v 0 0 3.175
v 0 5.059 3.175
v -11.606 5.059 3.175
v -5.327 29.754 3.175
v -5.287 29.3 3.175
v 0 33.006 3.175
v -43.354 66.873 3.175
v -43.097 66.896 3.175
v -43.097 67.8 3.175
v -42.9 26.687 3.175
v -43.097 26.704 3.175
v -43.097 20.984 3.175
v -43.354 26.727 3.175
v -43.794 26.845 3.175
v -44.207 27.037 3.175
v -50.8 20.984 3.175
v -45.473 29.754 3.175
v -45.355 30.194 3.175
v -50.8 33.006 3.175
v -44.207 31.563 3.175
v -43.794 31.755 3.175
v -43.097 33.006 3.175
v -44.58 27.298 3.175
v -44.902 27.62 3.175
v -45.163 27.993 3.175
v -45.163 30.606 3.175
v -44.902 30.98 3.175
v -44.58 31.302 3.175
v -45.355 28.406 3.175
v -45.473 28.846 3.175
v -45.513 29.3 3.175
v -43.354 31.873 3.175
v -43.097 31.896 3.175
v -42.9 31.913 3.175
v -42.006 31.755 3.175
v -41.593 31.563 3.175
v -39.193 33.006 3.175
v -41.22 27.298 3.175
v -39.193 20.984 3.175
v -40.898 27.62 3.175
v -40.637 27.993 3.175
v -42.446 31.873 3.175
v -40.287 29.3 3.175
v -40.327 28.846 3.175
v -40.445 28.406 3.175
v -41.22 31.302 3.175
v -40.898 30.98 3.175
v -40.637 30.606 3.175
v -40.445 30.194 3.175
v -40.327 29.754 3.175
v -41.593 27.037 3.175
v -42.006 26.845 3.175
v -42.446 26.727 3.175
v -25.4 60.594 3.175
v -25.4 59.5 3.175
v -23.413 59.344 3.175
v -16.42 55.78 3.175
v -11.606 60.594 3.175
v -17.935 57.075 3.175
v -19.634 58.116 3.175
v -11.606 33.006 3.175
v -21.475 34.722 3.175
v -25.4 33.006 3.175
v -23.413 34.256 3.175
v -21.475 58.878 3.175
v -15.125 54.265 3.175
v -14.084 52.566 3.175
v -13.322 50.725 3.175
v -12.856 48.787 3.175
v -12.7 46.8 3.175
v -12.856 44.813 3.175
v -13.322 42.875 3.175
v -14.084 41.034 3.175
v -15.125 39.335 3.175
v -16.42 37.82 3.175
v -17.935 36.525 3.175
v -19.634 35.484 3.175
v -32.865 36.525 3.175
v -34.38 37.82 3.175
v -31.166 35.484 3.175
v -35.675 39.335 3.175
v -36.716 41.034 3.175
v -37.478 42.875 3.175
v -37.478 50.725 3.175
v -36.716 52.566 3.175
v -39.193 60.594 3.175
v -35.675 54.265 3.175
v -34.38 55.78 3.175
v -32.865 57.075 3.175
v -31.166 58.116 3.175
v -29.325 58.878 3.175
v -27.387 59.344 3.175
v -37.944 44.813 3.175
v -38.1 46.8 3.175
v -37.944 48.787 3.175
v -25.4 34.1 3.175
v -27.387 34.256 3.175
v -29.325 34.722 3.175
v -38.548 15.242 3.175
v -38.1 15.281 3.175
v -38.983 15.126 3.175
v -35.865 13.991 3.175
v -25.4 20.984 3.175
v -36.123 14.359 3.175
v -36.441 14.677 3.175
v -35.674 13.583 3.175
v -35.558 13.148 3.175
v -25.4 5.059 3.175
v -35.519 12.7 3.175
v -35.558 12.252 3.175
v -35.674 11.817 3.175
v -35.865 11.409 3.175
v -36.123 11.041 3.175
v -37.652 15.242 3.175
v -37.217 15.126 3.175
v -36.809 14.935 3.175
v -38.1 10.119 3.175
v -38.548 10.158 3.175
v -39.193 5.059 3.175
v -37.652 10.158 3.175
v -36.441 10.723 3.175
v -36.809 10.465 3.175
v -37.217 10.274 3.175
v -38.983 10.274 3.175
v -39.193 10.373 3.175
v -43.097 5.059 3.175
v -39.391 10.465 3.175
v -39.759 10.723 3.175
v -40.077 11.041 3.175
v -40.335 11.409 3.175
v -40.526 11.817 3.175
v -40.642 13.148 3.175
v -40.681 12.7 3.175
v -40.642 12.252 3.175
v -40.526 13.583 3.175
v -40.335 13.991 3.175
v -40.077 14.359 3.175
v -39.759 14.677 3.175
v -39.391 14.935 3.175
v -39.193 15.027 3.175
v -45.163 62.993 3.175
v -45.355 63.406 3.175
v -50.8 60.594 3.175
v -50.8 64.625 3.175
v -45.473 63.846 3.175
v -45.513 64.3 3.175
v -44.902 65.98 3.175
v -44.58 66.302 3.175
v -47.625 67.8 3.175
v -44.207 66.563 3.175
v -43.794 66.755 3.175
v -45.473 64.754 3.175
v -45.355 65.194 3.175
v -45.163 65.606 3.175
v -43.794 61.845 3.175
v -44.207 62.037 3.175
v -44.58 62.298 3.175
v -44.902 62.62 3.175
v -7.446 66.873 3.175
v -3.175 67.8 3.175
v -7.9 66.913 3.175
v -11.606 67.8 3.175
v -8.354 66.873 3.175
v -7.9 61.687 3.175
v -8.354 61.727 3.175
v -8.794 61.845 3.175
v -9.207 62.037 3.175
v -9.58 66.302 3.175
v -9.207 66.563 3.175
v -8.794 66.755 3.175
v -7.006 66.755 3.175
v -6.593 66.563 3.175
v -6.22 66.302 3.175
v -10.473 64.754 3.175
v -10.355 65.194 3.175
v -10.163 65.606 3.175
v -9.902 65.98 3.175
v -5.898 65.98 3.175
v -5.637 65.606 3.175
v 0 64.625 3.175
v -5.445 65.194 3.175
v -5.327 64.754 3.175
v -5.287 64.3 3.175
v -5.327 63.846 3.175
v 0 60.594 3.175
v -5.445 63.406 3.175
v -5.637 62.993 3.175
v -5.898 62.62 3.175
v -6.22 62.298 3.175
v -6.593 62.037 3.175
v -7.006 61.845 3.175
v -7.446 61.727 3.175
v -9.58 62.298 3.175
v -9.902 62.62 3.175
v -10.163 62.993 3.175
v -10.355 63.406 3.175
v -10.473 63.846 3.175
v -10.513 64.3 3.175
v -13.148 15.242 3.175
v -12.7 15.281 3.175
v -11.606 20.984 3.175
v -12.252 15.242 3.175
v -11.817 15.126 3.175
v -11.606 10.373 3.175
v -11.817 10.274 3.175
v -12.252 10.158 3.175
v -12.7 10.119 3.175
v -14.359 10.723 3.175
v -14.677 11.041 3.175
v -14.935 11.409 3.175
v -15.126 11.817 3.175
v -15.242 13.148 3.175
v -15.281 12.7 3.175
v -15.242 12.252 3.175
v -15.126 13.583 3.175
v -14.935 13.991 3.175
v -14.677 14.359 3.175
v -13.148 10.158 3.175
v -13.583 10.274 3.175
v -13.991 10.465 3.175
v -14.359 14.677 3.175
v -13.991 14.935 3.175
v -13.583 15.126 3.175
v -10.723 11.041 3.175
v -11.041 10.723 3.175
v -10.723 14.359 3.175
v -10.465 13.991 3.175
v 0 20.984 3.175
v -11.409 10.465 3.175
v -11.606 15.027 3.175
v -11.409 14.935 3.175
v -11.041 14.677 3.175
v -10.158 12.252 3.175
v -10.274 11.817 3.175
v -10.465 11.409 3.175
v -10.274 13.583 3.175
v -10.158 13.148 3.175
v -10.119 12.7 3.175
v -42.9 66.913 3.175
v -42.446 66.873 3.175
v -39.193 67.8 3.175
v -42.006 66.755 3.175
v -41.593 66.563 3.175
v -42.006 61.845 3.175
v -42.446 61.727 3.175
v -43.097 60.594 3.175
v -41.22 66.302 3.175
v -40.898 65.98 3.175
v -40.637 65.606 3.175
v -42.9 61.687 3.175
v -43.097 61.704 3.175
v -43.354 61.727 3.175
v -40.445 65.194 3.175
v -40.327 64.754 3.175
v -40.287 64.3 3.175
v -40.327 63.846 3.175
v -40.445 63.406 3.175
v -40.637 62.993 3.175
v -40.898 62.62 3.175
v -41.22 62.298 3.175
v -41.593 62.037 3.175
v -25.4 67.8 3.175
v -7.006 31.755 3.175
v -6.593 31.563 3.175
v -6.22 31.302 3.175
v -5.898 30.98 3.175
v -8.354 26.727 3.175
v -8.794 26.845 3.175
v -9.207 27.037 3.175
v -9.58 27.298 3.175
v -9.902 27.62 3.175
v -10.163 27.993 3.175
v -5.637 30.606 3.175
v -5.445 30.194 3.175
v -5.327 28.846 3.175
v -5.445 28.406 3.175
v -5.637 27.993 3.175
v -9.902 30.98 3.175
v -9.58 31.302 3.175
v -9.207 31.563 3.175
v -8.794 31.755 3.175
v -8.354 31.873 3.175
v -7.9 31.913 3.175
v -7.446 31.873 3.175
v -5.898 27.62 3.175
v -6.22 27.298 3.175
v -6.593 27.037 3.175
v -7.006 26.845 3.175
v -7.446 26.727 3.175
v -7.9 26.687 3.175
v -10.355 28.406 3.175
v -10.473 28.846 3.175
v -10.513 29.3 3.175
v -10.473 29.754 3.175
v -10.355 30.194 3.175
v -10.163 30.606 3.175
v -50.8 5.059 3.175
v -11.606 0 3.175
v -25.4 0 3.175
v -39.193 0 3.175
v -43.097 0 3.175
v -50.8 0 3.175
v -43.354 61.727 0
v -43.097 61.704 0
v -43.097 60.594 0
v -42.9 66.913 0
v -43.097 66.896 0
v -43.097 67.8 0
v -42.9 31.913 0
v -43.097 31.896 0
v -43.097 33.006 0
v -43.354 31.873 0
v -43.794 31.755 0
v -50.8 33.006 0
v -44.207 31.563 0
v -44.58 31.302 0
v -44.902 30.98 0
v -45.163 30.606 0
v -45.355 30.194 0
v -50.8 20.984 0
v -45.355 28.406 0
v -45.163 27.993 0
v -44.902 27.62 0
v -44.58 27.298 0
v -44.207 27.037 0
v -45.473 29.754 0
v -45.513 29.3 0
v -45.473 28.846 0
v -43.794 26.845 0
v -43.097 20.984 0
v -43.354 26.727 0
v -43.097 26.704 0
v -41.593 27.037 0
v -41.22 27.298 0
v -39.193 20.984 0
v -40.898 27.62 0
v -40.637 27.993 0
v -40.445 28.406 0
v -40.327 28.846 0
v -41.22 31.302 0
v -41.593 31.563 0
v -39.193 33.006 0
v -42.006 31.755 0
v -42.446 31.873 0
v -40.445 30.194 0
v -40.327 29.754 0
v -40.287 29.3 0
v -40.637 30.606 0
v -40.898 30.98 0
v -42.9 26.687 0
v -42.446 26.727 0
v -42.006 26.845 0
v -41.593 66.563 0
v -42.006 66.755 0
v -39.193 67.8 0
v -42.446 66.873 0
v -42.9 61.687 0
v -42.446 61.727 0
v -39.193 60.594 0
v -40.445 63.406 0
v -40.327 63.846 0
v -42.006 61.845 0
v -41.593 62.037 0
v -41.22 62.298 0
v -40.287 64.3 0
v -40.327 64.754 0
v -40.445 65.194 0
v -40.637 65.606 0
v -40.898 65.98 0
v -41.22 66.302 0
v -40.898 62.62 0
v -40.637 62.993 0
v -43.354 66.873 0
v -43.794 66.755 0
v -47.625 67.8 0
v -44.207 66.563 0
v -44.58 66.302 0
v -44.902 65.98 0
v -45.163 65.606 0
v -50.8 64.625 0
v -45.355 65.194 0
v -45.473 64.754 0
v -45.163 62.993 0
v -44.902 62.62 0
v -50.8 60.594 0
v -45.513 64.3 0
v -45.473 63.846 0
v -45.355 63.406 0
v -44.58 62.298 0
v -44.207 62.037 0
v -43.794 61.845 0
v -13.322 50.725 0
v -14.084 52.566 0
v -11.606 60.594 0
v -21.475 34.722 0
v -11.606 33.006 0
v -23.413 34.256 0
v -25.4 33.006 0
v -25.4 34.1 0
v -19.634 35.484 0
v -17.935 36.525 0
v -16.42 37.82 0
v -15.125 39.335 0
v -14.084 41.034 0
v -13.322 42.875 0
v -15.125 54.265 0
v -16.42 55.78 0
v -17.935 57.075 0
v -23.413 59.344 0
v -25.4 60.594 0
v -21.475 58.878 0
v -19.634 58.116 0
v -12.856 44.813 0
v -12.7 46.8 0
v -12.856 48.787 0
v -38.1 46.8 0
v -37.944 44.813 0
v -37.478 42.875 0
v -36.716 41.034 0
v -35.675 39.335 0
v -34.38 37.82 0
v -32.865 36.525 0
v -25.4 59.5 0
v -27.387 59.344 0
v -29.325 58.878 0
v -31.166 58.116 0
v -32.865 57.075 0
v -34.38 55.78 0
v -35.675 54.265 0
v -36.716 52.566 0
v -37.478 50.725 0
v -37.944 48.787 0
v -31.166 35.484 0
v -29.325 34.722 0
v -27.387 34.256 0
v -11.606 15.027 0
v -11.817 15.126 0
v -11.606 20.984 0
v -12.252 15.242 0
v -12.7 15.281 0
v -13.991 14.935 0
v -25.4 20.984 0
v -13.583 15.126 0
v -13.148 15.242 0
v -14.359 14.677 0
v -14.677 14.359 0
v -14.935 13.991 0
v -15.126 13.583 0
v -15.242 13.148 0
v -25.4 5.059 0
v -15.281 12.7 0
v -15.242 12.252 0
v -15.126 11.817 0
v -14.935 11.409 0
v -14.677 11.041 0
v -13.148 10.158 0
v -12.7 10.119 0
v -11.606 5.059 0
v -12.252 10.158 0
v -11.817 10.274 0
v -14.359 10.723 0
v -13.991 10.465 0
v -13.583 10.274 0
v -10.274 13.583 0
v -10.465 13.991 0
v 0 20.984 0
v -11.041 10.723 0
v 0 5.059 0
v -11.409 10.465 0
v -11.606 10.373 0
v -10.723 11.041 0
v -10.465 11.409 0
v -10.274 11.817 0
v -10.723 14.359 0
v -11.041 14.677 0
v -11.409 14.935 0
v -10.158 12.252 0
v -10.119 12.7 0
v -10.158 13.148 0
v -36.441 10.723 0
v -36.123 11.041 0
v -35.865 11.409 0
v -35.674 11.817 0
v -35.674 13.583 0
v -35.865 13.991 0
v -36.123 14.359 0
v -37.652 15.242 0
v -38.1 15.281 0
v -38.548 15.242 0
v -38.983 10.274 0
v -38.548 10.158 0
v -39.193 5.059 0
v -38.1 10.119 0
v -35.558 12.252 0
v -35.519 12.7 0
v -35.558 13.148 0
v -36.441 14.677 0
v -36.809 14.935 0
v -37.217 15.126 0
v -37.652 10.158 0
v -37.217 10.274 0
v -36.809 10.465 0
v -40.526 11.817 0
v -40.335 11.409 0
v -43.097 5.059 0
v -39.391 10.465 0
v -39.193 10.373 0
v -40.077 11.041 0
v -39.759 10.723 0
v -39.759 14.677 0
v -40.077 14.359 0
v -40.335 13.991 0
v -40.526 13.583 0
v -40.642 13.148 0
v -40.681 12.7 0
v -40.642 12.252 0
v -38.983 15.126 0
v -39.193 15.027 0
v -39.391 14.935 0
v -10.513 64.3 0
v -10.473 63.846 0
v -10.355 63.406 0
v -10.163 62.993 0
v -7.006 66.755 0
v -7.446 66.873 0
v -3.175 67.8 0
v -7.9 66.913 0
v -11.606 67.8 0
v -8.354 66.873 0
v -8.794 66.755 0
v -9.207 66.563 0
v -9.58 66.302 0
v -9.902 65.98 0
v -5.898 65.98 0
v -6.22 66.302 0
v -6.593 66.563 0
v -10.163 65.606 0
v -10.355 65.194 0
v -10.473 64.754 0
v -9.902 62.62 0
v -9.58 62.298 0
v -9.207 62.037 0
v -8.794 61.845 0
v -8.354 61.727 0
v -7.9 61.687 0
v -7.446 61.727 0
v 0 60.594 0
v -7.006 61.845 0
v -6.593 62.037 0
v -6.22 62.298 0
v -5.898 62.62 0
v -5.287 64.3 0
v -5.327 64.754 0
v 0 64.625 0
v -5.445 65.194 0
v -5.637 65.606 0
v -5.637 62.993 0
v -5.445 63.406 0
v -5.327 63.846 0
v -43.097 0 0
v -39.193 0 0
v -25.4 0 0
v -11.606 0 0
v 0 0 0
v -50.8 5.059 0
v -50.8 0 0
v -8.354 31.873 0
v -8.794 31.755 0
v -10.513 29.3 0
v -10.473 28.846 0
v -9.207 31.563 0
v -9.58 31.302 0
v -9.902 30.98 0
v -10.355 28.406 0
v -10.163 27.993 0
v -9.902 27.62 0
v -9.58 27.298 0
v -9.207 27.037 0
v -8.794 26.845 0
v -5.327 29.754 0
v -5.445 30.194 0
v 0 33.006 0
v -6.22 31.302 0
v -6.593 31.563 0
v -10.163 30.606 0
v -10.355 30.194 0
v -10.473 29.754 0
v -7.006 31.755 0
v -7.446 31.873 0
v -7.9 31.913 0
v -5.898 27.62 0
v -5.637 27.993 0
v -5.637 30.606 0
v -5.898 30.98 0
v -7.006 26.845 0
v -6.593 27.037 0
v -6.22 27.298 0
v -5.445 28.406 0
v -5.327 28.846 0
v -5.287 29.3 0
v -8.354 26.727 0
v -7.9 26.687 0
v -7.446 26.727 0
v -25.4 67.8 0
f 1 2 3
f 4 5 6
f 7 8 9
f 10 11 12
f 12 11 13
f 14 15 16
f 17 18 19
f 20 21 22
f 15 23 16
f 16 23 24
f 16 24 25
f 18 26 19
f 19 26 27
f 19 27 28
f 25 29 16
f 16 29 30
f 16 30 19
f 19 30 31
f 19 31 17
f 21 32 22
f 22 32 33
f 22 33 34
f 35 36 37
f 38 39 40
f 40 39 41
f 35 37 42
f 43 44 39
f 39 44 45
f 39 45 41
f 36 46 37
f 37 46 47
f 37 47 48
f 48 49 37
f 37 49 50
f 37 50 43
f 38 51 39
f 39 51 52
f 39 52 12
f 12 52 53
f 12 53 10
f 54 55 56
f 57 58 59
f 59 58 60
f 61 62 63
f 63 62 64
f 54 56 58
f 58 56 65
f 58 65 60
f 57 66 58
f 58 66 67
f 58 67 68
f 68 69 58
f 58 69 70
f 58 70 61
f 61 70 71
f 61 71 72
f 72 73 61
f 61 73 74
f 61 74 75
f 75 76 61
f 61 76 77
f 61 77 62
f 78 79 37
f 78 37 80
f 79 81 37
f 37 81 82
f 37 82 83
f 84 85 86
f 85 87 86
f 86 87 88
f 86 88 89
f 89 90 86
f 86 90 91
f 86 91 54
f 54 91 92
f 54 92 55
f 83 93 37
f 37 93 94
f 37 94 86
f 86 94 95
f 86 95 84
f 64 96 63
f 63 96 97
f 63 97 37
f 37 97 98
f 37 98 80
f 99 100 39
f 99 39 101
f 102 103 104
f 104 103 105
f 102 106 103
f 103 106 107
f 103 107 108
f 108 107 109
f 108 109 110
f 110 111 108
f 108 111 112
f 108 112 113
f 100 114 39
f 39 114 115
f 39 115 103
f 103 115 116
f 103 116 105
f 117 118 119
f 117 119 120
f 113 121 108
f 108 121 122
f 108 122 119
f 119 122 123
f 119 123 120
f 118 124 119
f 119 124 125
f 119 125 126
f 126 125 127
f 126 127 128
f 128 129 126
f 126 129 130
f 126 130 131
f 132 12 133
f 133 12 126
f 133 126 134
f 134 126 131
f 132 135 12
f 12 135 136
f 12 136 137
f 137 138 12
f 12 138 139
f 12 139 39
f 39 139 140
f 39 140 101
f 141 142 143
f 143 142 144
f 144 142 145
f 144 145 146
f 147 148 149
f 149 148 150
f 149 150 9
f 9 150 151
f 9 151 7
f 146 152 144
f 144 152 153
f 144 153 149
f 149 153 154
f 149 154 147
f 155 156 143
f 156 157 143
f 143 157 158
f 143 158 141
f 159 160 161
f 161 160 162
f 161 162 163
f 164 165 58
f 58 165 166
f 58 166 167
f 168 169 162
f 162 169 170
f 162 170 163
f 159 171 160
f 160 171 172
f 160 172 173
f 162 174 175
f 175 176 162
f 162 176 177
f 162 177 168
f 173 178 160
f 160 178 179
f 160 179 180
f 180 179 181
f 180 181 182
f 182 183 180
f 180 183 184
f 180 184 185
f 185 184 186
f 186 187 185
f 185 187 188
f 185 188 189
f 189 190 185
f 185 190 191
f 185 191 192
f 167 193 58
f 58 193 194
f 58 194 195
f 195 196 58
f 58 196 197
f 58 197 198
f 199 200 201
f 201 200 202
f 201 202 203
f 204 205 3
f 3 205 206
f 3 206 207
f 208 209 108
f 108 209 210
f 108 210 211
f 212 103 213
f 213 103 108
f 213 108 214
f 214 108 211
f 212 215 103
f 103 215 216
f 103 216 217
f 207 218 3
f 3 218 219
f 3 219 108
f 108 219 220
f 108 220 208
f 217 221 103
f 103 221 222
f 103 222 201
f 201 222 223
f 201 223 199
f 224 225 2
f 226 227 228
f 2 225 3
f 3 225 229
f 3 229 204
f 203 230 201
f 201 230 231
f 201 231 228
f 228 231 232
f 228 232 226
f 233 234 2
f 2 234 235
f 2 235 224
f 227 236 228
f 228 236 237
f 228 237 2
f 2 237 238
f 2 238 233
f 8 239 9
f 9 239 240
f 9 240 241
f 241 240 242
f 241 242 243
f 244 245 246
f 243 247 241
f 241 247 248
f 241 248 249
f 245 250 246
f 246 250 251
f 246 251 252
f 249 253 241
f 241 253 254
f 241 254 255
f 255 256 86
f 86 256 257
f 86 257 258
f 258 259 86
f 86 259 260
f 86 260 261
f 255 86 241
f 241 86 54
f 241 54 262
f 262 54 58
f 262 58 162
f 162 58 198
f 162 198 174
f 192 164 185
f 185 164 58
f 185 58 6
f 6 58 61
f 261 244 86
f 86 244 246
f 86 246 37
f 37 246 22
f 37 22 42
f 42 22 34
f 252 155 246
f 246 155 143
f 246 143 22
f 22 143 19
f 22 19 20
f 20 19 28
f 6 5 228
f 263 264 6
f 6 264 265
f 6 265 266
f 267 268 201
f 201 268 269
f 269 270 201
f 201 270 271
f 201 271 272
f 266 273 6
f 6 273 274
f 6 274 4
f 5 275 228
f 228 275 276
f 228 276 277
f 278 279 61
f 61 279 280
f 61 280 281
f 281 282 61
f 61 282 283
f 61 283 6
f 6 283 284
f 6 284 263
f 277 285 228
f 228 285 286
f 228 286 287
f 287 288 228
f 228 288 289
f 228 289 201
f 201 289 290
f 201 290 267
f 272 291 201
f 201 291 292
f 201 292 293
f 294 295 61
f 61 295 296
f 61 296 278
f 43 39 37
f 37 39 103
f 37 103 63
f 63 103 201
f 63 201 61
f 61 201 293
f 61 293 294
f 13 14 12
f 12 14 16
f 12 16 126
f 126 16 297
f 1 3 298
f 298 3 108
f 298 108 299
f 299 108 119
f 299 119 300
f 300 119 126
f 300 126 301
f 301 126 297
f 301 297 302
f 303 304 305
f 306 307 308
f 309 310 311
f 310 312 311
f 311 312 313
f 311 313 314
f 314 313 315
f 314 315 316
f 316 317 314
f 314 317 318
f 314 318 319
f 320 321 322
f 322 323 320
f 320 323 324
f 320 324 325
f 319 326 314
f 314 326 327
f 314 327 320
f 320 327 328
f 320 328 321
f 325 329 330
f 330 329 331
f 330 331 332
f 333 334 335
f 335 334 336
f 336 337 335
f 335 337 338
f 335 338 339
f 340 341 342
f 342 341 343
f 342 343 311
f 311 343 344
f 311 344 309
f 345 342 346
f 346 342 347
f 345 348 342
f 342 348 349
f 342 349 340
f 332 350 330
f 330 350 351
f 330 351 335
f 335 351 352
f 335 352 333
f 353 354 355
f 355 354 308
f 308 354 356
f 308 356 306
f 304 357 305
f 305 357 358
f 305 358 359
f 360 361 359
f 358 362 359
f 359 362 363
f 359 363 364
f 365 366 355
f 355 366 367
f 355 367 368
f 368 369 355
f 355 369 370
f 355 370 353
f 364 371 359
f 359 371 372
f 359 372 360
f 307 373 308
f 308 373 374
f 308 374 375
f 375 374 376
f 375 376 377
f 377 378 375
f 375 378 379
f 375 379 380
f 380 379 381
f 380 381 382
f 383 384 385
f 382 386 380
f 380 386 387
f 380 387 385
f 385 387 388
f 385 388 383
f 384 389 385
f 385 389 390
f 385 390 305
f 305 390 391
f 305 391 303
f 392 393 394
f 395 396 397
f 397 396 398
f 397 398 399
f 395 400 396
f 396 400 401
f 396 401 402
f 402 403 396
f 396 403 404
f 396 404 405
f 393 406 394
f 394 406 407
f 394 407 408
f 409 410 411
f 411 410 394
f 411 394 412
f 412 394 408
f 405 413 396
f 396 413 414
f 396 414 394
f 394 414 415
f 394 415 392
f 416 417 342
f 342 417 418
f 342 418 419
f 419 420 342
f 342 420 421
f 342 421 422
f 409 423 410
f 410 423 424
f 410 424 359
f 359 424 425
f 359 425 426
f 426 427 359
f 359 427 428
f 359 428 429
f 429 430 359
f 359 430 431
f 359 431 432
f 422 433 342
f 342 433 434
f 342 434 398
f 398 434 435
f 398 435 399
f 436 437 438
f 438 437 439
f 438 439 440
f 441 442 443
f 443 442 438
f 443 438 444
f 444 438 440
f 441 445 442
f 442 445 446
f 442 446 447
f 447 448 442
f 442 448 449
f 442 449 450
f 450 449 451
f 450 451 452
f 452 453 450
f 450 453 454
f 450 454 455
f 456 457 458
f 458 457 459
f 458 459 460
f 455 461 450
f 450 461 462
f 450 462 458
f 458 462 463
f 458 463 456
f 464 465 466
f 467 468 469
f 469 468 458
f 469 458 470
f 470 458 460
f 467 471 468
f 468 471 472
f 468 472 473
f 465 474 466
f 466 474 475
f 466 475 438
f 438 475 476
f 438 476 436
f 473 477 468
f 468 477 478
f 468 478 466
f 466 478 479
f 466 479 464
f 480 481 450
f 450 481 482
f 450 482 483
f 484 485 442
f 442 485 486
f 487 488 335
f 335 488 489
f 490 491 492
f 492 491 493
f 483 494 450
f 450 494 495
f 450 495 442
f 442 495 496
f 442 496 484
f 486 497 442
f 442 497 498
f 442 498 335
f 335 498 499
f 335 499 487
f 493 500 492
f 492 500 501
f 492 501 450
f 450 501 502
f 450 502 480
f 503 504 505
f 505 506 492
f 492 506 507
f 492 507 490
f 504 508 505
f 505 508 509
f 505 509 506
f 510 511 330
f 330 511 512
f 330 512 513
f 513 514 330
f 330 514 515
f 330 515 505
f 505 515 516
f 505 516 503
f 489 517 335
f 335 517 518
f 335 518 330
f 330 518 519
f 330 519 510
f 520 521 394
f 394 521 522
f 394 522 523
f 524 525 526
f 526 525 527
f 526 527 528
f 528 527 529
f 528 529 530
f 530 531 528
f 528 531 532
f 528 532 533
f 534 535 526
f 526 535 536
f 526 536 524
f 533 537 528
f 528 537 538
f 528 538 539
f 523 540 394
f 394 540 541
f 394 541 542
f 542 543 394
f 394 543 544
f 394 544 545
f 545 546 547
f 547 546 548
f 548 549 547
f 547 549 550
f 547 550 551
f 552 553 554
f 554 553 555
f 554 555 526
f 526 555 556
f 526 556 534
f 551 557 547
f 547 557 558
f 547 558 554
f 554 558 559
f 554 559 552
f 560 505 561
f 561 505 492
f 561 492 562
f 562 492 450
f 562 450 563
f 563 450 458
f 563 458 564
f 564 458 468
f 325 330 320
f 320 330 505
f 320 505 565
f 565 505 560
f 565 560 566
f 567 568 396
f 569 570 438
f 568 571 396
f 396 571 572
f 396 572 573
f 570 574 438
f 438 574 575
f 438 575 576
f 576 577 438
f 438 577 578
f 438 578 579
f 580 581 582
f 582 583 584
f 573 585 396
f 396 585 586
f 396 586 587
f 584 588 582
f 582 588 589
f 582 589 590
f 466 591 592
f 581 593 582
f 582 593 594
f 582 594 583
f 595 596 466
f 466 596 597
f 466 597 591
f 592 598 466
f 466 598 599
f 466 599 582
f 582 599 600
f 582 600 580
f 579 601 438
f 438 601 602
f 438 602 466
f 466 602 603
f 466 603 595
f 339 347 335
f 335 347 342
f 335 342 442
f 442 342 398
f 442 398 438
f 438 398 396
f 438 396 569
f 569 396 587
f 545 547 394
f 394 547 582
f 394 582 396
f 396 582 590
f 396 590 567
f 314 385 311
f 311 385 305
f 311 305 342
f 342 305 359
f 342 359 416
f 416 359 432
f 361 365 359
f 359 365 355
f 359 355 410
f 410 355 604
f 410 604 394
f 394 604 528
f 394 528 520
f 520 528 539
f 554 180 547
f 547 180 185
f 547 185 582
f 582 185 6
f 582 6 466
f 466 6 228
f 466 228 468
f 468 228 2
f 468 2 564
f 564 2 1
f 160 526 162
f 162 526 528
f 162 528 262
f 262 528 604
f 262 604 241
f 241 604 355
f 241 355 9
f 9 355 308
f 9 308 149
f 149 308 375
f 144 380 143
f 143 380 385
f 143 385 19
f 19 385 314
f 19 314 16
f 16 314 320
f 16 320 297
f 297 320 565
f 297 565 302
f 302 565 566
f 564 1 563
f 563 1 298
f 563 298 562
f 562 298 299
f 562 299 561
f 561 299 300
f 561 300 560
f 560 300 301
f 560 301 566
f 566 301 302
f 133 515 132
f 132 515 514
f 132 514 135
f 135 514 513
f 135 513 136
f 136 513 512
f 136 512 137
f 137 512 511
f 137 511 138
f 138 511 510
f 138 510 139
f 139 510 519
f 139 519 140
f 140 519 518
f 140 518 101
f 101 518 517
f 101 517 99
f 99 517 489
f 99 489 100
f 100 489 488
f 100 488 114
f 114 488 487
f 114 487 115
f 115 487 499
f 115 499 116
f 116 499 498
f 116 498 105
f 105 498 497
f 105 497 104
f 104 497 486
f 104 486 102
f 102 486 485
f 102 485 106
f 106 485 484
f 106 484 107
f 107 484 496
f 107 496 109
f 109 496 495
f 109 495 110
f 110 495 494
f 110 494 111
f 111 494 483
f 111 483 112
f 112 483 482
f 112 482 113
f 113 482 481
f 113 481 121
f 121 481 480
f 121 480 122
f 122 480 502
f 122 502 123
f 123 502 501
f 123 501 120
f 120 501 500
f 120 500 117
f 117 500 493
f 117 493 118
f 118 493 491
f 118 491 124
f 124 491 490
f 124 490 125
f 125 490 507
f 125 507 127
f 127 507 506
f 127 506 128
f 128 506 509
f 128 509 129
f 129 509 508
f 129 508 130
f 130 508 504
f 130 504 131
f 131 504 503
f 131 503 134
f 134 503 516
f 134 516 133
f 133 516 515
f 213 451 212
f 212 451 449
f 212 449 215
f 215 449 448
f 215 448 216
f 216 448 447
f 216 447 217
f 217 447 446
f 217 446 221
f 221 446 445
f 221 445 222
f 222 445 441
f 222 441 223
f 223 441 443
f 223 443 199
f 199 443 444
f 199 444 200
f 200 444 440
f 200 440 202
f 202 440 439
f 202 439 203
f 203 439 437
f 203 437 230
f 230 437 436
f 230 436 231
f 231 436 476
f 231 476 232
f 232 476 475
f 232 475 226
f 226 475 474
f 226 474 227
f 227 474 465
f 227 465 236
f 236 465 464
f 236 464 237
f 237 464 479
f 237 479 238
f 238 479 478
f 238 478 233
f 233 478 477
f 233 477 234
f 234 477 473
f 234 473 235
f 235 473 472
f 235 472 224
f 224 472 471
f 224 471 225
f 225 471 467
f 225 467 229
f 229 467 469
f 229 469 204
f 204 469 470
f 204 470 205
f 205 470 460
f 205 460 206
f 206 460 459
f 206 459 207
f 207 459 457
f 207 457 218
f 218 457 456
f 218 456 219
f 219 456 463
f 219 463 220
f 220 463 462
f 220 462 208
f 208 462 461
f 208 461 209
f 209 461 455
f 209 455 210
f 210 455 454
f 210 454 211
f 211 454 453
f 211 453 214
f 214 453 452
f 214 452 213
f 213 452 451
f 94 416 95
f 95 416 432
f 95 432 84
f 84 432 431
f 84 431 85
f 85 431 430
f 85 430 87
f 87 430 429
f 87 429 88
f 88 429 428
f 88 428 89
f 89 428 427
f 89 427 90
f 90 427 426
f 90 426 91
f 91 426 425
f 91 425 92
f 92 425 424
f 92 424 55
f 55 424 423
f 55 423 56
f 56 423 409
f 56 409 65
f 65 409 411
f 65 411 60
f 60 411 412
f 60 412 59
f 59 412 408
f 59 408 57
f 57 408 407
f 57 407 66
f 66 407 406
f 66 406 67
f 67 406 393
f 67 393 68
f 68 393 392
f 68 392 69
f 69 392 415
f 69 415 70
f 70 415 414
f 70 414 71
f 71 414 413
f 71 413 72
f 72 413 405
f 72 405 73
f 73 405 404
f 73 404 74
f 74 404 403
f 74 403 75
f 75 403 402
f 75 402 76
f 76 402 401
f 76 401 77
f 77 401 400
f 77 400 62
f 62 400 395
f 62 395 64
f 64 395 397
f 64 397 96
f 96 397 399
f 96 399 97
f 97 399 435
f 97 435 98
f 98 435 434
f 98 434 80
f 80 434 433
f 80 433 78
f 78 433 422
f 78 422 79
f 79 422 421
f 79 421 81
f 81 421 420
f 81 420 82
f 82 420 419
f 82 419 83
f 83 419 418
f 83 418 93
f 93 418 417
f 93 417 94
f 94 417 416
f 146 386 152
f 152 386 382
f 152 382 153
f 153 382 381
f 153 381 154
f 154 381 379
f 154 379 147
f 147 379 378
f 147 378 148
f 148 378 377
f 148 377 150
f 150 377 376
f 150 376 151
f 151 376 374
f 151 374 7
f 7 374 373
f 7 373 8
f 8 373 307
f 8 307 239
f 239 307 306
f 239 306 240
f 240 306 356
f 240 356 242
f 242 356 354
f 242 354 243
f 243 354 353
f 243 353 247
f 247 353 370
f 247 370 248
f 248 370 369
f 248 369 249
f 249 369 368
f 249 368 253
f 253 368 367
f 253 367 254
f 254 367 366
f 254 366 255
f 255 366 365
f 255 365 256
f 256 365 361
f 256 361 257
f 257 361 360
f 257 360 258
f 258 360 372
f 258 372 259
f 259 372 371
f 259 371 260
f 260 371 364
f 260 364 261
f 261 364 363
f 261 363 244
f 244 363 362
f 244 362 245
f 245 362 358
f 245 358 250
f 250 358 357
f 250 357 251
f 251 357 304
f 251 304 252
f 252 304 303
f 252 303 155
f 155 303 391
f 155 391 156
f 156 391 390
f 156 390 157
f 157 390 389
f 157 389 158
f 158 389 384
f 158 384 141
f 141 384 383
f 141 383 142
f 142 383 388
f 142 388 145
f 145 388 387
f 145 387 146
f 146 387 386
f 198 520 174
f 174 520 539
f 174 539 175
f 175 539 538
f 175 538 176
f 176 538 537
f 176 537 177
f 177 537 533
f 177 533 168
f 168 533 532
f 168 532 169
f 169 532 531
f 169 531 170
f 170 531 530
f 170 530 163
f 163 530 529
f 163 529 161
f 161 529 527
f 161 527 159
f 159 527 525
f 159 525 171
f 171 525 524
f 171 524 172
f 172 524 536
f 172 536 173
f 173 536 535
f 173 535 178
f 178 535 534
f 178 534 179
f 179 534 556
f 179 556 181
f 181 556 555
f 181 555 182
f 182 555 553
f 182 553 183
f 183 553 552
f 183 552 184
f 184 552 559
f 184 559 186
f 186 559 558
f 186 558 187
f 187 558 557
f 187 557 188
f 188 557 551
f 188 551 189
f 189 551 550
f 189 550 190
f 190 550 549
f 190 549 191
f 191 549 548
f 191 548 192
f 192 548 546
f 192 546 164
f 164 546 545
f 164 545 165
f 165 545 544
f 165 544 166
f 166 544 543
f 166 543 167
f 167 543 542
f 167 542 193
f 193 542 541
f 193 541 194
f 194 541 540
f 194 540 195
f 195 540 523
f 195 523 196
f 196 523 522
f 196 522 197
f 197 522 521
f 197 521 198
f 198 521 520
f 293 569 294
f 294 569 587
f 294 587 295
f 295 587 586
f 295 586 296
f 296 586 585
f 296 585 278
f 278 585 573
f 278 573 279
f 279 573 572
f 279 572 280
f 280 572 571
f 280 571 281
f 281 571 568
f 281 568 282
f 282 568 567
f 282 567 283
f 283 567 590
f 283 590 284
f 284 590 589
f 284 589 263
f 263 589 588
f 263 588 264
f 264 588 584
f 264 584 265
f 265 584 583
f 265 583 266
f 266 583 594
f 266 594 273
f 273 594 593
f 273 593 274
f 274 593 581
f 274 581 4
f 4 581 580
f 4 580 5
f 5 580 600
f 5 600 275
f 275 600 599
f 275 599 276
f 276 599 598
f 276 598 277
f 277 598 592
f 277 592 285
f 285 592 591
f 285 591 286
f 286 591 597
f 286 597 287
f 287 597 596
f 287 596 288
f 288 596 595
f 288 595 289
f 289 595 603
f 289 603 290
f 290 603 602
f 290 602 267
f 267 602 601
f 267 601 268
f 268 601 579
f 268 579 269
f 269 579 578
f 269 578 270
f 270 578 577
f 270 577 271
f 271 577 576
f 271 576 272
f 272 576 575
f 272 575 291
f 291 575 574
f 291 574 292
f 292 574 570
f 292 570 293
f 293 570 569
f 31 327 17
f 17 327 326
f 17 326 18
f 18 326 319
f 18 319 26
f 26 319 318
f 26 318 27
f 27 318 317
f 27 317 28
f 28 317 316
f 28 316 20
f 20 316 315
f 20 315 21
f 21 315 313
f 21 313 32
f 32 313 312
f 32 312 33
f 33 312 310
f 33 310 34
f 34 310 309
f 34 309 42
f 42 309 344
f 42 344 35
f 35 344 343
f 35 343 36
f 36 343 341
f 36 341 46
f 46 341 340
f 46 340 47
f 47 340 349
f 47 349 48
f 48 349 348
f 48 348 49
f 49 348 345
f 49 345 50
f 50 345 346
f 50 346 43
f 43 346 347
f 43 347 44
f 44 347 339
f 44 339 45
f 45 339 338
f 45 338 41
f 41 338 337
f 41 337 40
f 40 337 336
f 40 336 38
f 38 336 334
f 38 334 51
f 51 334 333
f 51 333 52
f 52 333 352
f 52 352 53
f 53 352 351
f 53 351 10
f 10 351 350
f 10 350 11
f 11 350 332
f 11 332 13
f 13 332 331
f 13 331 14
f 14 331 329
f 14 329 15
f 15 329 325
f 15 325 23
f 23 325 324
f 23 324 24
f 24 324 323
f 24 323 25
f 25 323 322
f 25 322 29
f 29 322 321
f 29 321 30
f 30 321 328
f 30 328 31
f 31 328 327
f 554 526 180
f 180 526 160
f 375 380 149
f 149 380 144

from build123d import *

# Parameters (mm, degrees)
SKETCH1_W           = 50.8
SKETCH1_H           = 67.8
SKETCH1_R           = 2.58125
SKETCH1_R_2         = 12.7
SKETCH1_R_3         = 2.613
BOSS_EXTRUDE1_DEPTH = 3.175
CHAMFER1_SIZE       = 3.175


with BuildPart() as part:
    # Sketch1 → Boss-Extrude1 (new body)
    with BuildSketch(Plane.XY):
        with Locations((-25.4, 33.9)):
            Rectangle(SKETCH1_W, SKETCH1_H)
        with Locations((-38.1, 12.7)):
            Circle(SKETCH1_R, mode=Mode.SUBTRACT)
        with Locations(Location((-12.7, 12.7, 0), (0, 0, 180))):
            Circle(SKETCH1_R, mode=Mode.SUBTRACT)
        with Locations((-25.4, 46.8)):
            Circle(SKETCH1_R_2, mode=Mode.SUBTRACT)
        with Locations((-42.9, 64.3)):
            Circle(SKETCH1_R_3, mode=Mode.SUBTRACT)
        with Locations(Location((-7.9, 64.3, 0), (0, 0, 180))):
            Circle(SKETCH1_R_3, mode=Mode.SUBTRACT)
        with Locations((-7.9, 29.3)):
            Circle(SKETCH1_R_3, mode=Mode.SUBTRACT)
        with Locations(Location((-42.9, 29.3, 0), (0, 0, 180))):
            Circle(SKETCH1_R_3, mode=Mode.SUBTRACT)
    extrude(amount=BOSS_EXTRUDE1_DEPTH)

    # Chamfer1
    chamfer1_edges = [part.edges().sort_by_distance(p)[0] for p in [
        (-50.8, 67.8, 1.5875),
        (0, 67.8, 1.5875),
    ]]
    chamfer(chamfer1_edges, length=CHAMFER1_SIZE)


solid = part.part
